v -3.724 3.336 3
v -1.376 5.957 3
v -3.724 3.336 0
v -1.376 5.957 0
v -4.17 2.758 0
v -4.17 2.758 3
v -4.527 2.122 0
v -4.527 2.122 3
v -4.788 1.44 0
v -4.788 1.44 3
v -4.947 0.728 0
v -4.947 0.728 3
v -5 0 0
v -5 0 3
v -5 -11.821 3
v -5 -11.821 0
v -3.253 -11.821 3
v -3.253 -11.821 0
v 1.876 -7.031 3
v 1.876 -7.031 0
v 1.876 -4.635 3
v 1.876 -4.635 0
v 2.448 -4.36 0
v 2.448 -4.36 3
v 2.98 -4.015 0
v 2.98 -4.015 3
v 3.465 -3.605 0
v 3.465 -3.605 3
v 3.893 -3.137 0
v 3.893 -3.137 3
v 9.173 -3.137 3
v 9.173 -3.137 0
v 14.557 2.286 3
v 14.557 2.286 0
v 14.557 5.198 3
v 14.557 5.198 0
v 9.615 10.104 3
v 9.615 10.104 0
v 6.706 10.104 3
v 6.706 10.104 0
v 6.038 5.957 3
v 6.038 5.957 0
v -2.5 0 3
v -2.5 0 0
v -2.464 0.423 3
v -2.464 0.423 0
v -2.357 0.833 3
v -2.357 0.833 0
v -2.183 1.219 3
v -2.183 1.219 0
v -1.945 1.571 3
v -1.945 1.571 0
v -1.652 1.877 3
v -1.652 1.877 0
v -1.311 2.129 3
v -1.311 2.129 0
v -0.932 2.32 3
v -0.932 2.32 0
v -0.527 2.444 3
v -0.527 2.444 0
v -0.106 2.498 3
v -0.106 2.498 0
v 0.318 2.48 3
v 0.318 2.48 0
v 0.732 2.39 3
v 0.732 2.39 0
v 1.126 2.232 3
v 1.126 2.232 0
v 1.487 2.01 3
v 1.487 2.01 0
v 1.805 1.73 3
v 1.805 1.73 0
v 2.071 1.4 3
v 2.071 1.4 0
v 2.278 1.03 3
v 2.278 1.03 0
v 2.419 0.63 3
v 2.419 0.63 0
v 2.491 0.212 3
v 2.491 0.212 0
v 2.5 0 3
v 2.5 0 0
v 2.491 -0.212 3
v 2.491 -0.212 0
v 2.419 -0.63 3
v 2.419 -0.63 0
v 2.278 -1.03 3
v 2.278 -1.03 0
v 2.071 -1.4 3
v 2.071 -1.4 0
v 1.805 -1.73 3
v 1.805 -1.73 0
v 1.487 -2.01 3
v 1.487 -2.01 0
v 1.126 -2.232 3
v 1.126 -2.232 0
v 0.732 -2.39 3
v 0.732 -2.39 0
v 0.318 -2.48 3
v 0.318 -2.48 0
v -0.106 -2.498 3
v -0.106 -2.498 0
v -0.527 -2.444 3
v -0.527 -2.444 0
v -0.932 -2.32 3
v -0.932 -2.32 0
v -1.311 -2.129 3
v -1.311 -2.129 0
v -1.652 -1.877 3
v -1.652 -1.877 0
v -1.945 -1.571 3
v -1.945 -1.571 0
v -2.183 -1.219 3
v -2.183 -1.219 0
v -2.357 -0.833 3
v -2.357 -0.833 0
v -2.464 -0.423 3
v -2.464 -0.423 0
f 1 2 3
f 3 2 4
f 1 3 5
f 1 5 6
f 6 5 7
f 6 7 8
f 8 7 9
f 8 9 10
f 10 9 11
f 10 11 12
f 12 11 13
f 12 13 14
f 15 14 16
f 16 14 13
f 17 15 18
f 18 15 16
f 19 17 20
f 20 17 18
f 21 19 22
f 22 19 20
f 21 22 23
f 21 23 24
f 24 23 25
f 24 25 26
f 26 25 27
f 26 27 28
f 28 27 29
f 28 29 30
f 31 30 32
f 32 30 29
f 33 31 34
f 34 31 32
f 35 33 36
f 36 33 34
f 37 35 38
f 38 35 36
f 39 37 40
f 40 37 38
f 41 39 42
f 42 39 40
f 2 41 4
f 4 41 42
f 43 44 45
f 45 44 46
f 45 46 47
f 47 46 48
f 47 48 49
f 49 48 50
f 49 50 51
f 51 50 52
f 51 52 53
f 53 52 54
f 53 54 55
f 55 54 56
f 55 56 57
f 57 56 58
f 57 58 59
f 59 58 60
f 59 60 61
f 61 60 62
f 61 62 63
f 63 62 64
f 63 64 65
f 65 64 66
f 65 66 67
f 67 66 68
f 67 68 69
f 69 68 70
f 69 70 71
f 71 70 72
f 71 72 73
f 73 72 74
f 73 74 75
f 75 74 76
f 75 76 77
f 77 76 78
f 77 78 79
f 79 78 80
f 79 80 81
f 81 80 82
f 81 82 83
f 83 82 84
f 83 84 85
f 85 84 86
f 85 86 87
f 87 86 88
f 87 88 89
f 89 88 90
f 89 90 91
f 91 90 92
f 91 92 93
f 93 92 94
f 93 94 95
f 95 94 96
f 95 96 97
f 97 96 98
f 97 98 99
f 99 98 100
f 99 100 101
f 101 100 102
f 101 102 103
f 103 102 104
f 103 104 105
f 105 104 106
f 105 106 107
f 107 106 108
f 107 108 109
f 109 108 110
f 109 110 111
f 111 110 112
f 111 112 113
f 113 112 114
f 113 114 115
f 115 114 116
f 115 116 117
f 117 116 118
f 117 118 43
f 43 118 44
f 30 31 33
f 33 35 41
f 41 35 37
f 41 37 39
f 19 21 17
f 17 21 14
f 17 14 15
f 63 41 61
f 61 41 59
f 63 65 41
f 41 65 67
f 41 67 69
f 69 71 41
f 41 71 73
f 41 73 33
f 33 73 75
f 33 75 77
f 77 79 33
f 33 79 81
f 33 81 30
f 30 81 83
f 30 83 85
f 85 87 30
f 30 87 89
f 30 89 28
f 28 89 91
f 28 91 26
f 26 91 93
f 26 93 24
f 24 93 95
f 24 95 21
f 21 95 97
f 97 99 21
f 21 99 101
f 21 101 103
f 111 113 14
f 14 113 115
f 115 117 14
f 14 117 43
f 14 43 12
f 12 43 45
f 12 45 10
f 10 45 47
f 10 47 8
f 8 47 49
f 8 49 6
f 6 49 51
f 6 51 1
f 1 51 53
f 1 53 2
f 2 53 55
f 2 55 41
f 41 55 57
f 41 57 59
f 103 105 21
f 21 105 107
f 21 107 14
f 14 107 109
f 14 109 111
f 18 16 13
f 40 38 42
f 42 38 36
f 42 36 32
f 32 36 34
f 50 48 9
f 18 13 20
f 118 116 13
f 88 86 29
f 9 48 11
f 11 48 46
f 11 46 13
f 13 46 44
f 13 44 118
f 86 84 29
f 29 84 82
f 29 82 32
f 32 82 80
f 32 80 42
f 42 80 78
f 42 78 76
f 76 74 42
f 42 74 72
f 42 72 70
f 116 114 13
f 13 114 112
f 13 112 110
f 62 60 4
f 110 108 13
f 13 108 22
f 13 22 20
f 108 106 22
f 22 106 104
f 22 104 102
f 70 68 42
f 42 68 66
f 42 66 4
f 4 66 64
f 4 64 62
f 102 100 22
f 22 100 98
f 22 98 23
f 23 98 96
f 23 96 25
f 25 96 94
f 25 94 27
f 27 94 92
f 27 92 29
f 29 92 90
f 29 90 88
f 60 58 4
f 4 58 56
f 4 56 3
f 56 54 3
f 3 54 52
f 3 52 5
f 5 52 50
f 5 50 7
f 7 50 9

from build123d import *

# Parameters (mm, degrees)
SKETCH_1_R      = 2.5
EXTRUDE_1_DEPTH = 3


with BuildPart() as part:
    # 스케치1 → 보스-돌출1 (new body)
    with BuildSketch(Plane.XY):
        with BuildLine():
            Line((6.706268494, 10.103683016), (6.037882178, 5.957406269))
            Line((6.037882178, 5.957406269), (-1.376355668, 5.957406269))
            Line((-1.376355668, 5.957406269), (-3.724392512, 3.336000662))
            ThreePointArc((-3.724392512, 3.336000662), (-4.67022283, 1.785782383), (-5, 0))
            Line((-5, 0), (-5, -11.820871263))
            Line((-5, -11.820871263), (-3.253479839, -11.820871263))
            Line((-3.253479839, -11.820871263), (1.87605446, -7.031414053))
            Line((1.87605446, -7.031414053), (1.87605446, -4.634697365))
            ThreePointArc((1.87605446, -4.634697365), (2.980195691, -4.014776911), (3.893195608, -3.13736003))
            Line((3.893195608, -3.13736003), (9.172978659, -3.13736003))
            Line((9.172978659, -3.13736003), (14.557074242, 2.286312605))
            Line((14.557074242, 2.286312605), (14.557074242, 5.198022376))
            Line((14.557074242, 5.198022376), (9.615353398, 10.103683016))
            Line((9.615353398, 10.103683016), (6.706268494, 10.103683016))
        make_face()
        Circle(SKETCH_1_R, mode=Mode.SUBTRACT)
    extrude(amount=EXTRUDE_1_DEPTH)


solid = part.part
